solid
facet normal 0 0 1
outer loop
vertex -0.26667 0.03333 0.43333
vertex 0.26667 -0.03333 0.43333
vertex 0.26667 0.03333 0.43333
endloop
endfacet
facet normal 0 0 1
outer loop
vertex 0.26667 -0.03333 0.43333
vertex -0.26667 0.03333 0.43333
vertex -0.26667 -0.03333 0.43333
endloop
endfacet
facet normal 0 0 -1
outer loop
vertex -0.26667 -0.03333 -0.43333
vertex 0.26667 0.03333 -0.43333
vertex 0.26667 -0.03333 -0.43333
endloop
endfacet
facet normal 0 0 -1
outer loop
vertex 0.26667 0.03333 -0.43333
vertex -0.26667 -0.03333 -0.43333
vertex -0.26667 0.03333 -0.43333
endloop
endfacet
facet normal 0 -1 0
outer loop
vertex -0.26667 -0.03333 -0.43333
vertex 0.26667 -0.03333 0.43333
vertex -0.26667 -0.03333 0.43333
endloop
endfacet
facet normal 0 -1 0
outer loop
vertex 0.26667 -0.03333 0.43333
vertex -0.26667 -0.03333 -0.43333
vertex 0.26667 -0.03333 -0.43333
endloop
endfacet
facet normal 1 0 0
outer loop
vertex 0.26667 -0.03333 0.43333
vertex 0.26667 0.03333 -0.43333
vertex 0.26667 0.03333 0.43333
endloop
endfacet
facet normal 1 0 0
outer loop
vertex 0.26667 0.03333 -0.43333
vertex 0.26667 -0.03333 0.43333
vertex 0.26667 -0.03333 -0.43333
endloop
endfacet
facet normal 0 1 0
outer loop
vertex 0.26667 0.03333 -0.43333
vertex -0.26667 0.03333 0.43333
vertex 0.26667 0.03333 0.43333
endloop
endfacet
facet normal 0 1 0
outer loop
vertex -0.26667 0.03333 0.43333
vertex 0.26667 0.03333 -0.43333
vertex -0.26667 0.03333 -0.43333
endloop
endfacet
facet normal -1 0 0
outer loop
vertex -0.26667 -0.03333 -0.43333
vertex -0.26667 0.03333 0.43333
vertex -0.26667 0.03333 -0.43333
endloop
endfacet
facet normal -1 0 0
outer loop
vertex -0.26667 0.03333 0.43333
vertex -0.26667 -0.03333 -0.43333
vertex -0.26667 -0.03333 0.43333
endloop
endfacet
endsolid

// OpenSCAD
$fa = 1;
$fs = 0.1;
mag = 1 / 15;
thickness = mag * 1;
height = mag * 15;
width = mag * 10;
border = mag * 1;
cube([width - 2 * border, thickness, height - 2 * border], center = true);
